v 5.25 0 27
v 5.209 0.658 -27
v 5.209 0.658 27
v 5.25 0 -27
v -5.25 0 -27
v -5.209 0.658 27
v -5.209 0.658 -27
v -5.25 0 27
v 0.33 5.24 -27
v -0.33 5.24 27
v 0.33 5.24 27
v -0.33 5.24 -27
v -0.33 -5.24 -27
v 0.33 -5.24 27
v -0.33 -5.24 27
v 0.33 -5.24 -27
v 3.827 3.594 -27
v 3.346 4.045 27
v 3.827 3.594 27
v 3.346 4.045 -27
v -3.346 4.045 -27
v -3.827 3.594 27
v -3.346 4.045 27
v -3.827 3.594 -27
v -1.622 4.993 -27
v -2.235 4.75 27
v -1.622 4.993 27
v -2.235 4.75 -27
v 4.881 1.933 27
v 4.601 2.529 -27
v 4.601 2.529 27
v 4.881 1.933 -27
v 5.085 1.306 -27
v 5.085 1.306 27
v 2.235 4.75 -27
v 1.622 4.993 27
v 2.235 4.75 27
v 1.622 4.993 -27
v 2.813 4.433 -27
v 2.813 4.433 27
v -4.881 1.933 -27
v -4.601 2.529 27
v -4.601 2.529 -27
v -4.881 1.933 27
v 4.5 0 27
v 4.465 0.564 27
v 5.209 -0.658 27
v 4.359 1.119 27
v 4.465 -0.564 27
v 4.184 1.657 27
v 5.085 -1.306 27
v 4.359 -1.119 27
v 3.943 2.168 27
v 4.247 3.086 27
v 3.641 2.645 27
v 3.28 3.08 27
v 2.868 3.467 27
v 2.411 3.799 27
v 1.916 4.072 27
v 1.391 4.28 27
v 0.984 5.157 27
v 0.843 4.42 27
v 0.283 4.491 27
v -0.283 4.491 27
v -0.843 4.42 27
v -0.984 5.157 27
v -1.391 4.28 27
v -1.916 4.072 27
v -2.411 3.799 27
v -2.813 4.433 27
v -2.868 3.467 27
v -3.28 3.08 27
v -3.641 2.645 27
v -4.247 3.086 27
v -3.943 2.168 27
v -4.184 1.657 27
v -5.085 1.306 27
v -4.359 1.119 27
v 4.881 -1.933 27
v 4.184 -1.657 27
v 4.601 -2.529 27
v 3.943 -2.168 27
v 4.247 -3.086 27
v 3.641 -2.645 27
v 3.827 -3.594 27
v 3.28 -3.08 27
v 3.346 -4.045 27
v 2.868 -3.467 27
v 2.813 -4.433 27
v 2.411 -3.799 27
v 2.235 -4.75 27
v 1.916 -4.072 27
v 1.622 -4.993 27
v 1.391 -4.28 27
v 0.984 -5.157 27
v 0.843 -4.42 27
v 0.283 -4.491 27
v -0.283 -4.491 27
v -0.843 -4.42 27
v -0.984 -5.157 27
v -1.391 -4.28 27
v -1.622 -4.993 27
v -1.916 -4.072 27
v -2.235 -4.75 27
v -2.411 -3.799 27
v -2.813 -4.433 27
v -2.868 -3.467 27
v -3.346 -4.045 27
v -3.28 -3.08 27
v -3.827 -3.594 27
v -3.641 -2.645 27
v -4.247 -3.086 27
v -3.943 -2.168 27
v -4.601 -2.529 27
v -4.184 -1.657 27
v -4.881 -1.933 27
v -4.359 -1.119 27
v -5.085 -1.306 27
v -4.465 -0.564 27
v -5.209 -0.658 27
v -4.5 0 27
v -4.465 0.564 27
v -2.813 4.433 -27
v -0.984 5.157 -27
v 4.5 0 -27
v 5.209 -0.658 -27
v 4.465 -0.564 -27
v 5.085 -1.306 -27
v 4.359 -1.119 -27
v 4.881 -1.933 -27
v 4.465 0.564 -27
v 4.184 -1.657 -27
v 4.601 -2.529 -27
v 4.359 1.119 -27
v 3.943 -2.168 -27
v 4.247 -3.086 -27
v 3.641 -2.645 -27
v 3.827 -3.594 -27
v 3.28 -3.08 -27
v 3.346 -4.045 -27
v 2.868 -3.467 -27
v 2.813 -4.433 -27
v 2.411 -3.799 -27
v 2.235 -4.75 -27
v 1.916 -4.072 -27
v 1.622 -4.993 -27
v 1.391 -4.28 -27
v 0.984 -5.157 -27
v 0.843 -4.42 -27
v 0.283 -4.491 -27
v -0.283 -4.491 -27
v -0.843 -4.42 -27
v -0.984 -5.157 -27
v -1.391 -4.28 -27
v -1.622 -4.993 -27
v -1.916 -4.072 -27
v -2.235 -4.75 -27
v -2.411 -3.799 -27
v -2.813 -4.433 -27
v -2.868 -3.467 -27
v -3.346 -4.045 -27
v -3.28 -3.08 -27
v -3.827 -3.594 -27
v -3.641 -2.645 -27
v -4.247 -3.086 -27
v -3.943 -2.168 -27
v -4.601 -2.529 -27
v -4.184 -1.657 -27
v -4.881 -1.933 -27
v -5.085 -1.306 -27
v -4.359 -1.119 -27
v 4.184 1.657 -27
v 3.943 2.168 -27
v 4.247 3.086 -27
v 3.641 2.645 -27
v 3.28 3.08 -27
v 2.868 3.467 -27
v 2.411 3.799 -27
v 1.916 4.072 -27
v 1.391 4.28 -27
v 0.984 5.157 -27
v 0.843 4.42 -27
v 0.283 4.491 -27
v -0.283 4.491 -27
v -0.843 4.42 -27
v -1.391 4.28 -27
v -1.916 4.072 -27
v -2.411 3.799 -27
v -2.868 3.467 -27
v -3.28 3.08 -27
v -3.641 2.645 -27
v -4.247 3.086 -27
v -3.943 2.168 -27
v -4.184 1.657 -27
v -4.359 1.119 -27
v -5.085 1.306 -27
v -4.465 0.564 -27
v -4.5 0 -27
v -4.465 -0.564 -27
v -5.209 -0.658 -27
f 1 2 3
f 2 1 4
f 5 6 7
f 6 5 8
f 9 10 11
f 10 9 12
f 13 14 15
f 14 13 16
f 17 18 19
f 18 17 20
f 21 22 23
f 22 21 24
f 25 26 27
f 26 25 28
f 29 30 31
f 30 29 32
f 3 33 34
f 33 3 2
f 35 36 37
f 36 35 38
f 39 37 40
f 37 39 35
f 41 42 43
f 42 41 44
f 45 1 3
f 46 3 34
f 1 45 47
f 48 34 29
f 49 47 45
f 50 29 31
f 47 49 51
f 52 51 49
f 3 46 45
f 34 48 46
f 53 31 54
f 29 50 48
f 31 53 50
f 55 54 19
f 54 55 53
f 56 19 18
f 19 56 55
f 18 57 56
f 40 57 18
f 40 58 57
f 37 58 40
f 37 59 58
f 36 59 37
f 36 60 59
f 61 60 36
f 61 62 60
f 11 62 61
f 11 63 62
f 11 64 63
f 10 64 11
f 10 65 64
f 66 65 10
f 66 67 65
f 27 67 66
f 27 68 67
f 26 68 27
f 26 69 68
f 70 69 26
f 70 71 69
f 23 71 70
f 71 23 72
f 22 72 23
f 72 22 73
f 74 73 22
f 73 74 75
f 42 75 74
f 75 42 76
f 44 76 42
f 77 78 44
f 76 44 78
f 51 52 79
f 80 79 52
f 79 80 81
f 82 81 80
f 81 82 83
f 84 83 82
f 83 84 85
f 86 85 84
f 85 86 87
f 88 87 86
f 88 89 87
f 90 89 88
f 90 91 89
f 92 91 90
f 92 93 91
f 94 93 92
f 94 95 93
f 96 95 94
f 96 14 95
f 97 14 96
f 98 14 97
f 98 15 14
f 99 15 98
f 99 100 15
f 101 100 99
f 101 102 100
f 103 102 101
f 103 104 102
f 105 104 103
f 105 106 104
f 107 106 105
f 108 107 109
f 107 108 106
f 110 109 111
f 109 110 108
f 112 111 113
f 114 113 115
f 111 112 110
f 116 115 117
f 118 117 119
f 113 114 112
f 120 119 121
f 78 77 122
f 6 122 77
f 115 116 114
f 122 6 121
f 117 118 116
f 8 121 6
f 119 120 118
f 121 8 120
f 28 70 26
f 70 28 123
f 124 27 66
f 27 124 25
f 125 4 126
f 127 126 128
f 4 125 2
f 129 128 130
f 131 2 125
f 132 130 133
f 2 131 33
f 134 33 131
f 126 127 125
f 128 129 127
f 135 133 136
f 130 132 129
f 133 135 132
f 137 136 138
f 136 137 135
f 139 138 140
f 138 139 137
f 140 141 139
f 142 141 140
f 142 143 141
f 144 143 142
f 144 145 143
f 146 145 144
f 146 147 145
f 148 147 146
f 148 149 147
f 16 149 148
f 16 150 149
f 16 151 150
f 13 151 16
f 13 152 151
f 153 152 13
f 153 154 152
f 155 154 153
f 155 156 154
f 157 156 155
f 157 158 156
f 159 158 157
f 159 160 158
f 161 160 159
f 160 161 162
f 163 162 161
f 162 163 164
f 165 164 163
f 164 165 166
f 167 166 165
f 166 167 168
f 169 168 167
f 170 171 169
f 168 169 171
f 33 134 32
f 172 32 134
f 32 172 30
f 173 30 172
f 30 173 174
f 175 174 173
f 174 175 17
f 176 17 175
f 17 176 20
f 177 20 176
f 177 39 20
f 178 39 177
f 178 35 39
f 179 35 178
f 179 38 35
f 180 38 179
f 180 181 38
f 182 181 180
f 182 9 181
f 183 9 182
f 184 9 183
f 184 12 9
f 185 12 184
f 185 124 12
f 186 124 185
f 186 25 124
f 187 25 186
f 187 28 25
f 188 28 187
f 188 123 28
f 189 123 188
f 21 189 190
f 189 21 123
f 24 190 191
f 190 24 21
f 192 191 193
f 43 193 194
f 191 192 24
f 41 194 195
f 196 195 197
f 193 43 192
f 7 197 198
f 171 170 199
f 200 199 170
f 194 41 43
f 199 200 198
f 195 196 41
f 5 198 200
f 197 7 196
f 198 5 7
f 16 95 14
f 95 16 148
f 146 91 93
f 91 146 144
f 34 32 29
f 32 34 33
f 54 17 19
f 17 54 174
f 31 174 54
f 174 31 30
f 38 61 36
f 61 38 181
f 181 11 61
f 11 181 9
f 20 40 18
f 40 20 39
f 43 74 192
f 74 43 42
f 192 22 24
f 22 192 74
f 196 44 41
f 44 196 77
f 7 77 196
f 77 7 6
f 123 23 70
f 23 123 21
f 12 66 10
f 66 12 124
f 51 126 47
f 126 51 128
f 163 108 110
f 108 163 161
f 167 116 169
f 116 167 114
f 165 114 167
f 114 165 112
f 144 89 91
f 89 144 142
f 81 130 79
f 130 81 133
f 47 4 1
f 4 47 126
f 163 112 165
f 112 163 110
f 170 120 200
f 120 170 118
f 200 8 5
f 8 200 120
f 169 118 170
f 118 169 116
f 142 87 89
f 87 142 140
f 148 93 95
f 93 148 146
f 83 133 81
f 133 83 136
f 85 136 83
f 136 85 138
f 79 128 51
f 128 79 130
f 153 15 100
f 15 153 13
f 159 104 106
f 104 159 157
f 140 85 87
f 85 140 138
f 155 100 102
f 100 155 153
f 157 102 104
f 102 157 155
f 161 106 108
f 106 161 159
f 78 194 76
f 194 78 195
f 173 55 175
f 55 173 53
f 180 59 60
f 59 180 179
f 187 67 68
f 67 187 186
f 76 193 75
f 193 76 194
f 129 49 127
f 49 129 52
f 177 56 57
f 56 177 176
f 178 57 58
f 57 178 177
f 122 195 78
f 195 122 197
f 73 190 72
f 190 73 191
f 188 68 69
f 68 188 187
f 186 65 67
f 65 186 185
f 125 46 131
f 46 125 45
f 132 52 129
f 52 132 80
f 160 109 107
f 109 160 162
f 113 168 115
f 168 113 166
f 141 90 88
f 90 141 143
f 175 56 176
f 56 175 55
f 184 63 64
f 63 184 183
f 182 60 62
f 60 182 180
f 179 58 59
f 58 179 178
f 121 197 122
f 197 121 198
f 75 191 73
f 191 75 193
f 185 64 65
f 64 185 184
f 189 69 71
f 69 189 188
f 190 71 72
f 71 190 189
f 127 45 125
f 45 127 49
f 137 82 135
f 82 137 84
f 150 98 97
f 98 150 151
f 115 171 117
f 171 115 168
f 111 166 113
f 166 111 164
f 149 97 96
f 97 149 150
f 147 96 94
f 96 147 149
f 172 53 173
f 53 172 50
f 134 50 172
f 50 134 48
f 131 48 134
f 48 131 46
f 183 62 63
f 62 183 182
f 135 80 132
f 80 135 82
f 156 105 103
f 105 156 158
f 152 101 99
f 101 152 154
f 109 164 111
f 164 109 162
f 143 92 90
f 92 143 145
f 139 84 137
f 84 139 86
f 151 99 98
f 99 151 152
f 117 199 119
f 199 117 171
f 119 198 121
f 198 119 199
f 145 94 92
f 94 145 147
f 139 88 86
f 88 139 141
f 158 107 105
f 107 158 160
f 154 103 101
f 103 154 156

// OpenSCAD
$fn = 50;


difference() {
	union() {
		translate(v = [0, 0, -27.0000000000]) {
			cylinder(h = 54, r = 5.2500000000);
		}
	}
	union() {
		translate(v = [0, 0, -100.0000000000]) {
			cylinder(h = 200, r = 4.5000000000);
		}
	}
}
